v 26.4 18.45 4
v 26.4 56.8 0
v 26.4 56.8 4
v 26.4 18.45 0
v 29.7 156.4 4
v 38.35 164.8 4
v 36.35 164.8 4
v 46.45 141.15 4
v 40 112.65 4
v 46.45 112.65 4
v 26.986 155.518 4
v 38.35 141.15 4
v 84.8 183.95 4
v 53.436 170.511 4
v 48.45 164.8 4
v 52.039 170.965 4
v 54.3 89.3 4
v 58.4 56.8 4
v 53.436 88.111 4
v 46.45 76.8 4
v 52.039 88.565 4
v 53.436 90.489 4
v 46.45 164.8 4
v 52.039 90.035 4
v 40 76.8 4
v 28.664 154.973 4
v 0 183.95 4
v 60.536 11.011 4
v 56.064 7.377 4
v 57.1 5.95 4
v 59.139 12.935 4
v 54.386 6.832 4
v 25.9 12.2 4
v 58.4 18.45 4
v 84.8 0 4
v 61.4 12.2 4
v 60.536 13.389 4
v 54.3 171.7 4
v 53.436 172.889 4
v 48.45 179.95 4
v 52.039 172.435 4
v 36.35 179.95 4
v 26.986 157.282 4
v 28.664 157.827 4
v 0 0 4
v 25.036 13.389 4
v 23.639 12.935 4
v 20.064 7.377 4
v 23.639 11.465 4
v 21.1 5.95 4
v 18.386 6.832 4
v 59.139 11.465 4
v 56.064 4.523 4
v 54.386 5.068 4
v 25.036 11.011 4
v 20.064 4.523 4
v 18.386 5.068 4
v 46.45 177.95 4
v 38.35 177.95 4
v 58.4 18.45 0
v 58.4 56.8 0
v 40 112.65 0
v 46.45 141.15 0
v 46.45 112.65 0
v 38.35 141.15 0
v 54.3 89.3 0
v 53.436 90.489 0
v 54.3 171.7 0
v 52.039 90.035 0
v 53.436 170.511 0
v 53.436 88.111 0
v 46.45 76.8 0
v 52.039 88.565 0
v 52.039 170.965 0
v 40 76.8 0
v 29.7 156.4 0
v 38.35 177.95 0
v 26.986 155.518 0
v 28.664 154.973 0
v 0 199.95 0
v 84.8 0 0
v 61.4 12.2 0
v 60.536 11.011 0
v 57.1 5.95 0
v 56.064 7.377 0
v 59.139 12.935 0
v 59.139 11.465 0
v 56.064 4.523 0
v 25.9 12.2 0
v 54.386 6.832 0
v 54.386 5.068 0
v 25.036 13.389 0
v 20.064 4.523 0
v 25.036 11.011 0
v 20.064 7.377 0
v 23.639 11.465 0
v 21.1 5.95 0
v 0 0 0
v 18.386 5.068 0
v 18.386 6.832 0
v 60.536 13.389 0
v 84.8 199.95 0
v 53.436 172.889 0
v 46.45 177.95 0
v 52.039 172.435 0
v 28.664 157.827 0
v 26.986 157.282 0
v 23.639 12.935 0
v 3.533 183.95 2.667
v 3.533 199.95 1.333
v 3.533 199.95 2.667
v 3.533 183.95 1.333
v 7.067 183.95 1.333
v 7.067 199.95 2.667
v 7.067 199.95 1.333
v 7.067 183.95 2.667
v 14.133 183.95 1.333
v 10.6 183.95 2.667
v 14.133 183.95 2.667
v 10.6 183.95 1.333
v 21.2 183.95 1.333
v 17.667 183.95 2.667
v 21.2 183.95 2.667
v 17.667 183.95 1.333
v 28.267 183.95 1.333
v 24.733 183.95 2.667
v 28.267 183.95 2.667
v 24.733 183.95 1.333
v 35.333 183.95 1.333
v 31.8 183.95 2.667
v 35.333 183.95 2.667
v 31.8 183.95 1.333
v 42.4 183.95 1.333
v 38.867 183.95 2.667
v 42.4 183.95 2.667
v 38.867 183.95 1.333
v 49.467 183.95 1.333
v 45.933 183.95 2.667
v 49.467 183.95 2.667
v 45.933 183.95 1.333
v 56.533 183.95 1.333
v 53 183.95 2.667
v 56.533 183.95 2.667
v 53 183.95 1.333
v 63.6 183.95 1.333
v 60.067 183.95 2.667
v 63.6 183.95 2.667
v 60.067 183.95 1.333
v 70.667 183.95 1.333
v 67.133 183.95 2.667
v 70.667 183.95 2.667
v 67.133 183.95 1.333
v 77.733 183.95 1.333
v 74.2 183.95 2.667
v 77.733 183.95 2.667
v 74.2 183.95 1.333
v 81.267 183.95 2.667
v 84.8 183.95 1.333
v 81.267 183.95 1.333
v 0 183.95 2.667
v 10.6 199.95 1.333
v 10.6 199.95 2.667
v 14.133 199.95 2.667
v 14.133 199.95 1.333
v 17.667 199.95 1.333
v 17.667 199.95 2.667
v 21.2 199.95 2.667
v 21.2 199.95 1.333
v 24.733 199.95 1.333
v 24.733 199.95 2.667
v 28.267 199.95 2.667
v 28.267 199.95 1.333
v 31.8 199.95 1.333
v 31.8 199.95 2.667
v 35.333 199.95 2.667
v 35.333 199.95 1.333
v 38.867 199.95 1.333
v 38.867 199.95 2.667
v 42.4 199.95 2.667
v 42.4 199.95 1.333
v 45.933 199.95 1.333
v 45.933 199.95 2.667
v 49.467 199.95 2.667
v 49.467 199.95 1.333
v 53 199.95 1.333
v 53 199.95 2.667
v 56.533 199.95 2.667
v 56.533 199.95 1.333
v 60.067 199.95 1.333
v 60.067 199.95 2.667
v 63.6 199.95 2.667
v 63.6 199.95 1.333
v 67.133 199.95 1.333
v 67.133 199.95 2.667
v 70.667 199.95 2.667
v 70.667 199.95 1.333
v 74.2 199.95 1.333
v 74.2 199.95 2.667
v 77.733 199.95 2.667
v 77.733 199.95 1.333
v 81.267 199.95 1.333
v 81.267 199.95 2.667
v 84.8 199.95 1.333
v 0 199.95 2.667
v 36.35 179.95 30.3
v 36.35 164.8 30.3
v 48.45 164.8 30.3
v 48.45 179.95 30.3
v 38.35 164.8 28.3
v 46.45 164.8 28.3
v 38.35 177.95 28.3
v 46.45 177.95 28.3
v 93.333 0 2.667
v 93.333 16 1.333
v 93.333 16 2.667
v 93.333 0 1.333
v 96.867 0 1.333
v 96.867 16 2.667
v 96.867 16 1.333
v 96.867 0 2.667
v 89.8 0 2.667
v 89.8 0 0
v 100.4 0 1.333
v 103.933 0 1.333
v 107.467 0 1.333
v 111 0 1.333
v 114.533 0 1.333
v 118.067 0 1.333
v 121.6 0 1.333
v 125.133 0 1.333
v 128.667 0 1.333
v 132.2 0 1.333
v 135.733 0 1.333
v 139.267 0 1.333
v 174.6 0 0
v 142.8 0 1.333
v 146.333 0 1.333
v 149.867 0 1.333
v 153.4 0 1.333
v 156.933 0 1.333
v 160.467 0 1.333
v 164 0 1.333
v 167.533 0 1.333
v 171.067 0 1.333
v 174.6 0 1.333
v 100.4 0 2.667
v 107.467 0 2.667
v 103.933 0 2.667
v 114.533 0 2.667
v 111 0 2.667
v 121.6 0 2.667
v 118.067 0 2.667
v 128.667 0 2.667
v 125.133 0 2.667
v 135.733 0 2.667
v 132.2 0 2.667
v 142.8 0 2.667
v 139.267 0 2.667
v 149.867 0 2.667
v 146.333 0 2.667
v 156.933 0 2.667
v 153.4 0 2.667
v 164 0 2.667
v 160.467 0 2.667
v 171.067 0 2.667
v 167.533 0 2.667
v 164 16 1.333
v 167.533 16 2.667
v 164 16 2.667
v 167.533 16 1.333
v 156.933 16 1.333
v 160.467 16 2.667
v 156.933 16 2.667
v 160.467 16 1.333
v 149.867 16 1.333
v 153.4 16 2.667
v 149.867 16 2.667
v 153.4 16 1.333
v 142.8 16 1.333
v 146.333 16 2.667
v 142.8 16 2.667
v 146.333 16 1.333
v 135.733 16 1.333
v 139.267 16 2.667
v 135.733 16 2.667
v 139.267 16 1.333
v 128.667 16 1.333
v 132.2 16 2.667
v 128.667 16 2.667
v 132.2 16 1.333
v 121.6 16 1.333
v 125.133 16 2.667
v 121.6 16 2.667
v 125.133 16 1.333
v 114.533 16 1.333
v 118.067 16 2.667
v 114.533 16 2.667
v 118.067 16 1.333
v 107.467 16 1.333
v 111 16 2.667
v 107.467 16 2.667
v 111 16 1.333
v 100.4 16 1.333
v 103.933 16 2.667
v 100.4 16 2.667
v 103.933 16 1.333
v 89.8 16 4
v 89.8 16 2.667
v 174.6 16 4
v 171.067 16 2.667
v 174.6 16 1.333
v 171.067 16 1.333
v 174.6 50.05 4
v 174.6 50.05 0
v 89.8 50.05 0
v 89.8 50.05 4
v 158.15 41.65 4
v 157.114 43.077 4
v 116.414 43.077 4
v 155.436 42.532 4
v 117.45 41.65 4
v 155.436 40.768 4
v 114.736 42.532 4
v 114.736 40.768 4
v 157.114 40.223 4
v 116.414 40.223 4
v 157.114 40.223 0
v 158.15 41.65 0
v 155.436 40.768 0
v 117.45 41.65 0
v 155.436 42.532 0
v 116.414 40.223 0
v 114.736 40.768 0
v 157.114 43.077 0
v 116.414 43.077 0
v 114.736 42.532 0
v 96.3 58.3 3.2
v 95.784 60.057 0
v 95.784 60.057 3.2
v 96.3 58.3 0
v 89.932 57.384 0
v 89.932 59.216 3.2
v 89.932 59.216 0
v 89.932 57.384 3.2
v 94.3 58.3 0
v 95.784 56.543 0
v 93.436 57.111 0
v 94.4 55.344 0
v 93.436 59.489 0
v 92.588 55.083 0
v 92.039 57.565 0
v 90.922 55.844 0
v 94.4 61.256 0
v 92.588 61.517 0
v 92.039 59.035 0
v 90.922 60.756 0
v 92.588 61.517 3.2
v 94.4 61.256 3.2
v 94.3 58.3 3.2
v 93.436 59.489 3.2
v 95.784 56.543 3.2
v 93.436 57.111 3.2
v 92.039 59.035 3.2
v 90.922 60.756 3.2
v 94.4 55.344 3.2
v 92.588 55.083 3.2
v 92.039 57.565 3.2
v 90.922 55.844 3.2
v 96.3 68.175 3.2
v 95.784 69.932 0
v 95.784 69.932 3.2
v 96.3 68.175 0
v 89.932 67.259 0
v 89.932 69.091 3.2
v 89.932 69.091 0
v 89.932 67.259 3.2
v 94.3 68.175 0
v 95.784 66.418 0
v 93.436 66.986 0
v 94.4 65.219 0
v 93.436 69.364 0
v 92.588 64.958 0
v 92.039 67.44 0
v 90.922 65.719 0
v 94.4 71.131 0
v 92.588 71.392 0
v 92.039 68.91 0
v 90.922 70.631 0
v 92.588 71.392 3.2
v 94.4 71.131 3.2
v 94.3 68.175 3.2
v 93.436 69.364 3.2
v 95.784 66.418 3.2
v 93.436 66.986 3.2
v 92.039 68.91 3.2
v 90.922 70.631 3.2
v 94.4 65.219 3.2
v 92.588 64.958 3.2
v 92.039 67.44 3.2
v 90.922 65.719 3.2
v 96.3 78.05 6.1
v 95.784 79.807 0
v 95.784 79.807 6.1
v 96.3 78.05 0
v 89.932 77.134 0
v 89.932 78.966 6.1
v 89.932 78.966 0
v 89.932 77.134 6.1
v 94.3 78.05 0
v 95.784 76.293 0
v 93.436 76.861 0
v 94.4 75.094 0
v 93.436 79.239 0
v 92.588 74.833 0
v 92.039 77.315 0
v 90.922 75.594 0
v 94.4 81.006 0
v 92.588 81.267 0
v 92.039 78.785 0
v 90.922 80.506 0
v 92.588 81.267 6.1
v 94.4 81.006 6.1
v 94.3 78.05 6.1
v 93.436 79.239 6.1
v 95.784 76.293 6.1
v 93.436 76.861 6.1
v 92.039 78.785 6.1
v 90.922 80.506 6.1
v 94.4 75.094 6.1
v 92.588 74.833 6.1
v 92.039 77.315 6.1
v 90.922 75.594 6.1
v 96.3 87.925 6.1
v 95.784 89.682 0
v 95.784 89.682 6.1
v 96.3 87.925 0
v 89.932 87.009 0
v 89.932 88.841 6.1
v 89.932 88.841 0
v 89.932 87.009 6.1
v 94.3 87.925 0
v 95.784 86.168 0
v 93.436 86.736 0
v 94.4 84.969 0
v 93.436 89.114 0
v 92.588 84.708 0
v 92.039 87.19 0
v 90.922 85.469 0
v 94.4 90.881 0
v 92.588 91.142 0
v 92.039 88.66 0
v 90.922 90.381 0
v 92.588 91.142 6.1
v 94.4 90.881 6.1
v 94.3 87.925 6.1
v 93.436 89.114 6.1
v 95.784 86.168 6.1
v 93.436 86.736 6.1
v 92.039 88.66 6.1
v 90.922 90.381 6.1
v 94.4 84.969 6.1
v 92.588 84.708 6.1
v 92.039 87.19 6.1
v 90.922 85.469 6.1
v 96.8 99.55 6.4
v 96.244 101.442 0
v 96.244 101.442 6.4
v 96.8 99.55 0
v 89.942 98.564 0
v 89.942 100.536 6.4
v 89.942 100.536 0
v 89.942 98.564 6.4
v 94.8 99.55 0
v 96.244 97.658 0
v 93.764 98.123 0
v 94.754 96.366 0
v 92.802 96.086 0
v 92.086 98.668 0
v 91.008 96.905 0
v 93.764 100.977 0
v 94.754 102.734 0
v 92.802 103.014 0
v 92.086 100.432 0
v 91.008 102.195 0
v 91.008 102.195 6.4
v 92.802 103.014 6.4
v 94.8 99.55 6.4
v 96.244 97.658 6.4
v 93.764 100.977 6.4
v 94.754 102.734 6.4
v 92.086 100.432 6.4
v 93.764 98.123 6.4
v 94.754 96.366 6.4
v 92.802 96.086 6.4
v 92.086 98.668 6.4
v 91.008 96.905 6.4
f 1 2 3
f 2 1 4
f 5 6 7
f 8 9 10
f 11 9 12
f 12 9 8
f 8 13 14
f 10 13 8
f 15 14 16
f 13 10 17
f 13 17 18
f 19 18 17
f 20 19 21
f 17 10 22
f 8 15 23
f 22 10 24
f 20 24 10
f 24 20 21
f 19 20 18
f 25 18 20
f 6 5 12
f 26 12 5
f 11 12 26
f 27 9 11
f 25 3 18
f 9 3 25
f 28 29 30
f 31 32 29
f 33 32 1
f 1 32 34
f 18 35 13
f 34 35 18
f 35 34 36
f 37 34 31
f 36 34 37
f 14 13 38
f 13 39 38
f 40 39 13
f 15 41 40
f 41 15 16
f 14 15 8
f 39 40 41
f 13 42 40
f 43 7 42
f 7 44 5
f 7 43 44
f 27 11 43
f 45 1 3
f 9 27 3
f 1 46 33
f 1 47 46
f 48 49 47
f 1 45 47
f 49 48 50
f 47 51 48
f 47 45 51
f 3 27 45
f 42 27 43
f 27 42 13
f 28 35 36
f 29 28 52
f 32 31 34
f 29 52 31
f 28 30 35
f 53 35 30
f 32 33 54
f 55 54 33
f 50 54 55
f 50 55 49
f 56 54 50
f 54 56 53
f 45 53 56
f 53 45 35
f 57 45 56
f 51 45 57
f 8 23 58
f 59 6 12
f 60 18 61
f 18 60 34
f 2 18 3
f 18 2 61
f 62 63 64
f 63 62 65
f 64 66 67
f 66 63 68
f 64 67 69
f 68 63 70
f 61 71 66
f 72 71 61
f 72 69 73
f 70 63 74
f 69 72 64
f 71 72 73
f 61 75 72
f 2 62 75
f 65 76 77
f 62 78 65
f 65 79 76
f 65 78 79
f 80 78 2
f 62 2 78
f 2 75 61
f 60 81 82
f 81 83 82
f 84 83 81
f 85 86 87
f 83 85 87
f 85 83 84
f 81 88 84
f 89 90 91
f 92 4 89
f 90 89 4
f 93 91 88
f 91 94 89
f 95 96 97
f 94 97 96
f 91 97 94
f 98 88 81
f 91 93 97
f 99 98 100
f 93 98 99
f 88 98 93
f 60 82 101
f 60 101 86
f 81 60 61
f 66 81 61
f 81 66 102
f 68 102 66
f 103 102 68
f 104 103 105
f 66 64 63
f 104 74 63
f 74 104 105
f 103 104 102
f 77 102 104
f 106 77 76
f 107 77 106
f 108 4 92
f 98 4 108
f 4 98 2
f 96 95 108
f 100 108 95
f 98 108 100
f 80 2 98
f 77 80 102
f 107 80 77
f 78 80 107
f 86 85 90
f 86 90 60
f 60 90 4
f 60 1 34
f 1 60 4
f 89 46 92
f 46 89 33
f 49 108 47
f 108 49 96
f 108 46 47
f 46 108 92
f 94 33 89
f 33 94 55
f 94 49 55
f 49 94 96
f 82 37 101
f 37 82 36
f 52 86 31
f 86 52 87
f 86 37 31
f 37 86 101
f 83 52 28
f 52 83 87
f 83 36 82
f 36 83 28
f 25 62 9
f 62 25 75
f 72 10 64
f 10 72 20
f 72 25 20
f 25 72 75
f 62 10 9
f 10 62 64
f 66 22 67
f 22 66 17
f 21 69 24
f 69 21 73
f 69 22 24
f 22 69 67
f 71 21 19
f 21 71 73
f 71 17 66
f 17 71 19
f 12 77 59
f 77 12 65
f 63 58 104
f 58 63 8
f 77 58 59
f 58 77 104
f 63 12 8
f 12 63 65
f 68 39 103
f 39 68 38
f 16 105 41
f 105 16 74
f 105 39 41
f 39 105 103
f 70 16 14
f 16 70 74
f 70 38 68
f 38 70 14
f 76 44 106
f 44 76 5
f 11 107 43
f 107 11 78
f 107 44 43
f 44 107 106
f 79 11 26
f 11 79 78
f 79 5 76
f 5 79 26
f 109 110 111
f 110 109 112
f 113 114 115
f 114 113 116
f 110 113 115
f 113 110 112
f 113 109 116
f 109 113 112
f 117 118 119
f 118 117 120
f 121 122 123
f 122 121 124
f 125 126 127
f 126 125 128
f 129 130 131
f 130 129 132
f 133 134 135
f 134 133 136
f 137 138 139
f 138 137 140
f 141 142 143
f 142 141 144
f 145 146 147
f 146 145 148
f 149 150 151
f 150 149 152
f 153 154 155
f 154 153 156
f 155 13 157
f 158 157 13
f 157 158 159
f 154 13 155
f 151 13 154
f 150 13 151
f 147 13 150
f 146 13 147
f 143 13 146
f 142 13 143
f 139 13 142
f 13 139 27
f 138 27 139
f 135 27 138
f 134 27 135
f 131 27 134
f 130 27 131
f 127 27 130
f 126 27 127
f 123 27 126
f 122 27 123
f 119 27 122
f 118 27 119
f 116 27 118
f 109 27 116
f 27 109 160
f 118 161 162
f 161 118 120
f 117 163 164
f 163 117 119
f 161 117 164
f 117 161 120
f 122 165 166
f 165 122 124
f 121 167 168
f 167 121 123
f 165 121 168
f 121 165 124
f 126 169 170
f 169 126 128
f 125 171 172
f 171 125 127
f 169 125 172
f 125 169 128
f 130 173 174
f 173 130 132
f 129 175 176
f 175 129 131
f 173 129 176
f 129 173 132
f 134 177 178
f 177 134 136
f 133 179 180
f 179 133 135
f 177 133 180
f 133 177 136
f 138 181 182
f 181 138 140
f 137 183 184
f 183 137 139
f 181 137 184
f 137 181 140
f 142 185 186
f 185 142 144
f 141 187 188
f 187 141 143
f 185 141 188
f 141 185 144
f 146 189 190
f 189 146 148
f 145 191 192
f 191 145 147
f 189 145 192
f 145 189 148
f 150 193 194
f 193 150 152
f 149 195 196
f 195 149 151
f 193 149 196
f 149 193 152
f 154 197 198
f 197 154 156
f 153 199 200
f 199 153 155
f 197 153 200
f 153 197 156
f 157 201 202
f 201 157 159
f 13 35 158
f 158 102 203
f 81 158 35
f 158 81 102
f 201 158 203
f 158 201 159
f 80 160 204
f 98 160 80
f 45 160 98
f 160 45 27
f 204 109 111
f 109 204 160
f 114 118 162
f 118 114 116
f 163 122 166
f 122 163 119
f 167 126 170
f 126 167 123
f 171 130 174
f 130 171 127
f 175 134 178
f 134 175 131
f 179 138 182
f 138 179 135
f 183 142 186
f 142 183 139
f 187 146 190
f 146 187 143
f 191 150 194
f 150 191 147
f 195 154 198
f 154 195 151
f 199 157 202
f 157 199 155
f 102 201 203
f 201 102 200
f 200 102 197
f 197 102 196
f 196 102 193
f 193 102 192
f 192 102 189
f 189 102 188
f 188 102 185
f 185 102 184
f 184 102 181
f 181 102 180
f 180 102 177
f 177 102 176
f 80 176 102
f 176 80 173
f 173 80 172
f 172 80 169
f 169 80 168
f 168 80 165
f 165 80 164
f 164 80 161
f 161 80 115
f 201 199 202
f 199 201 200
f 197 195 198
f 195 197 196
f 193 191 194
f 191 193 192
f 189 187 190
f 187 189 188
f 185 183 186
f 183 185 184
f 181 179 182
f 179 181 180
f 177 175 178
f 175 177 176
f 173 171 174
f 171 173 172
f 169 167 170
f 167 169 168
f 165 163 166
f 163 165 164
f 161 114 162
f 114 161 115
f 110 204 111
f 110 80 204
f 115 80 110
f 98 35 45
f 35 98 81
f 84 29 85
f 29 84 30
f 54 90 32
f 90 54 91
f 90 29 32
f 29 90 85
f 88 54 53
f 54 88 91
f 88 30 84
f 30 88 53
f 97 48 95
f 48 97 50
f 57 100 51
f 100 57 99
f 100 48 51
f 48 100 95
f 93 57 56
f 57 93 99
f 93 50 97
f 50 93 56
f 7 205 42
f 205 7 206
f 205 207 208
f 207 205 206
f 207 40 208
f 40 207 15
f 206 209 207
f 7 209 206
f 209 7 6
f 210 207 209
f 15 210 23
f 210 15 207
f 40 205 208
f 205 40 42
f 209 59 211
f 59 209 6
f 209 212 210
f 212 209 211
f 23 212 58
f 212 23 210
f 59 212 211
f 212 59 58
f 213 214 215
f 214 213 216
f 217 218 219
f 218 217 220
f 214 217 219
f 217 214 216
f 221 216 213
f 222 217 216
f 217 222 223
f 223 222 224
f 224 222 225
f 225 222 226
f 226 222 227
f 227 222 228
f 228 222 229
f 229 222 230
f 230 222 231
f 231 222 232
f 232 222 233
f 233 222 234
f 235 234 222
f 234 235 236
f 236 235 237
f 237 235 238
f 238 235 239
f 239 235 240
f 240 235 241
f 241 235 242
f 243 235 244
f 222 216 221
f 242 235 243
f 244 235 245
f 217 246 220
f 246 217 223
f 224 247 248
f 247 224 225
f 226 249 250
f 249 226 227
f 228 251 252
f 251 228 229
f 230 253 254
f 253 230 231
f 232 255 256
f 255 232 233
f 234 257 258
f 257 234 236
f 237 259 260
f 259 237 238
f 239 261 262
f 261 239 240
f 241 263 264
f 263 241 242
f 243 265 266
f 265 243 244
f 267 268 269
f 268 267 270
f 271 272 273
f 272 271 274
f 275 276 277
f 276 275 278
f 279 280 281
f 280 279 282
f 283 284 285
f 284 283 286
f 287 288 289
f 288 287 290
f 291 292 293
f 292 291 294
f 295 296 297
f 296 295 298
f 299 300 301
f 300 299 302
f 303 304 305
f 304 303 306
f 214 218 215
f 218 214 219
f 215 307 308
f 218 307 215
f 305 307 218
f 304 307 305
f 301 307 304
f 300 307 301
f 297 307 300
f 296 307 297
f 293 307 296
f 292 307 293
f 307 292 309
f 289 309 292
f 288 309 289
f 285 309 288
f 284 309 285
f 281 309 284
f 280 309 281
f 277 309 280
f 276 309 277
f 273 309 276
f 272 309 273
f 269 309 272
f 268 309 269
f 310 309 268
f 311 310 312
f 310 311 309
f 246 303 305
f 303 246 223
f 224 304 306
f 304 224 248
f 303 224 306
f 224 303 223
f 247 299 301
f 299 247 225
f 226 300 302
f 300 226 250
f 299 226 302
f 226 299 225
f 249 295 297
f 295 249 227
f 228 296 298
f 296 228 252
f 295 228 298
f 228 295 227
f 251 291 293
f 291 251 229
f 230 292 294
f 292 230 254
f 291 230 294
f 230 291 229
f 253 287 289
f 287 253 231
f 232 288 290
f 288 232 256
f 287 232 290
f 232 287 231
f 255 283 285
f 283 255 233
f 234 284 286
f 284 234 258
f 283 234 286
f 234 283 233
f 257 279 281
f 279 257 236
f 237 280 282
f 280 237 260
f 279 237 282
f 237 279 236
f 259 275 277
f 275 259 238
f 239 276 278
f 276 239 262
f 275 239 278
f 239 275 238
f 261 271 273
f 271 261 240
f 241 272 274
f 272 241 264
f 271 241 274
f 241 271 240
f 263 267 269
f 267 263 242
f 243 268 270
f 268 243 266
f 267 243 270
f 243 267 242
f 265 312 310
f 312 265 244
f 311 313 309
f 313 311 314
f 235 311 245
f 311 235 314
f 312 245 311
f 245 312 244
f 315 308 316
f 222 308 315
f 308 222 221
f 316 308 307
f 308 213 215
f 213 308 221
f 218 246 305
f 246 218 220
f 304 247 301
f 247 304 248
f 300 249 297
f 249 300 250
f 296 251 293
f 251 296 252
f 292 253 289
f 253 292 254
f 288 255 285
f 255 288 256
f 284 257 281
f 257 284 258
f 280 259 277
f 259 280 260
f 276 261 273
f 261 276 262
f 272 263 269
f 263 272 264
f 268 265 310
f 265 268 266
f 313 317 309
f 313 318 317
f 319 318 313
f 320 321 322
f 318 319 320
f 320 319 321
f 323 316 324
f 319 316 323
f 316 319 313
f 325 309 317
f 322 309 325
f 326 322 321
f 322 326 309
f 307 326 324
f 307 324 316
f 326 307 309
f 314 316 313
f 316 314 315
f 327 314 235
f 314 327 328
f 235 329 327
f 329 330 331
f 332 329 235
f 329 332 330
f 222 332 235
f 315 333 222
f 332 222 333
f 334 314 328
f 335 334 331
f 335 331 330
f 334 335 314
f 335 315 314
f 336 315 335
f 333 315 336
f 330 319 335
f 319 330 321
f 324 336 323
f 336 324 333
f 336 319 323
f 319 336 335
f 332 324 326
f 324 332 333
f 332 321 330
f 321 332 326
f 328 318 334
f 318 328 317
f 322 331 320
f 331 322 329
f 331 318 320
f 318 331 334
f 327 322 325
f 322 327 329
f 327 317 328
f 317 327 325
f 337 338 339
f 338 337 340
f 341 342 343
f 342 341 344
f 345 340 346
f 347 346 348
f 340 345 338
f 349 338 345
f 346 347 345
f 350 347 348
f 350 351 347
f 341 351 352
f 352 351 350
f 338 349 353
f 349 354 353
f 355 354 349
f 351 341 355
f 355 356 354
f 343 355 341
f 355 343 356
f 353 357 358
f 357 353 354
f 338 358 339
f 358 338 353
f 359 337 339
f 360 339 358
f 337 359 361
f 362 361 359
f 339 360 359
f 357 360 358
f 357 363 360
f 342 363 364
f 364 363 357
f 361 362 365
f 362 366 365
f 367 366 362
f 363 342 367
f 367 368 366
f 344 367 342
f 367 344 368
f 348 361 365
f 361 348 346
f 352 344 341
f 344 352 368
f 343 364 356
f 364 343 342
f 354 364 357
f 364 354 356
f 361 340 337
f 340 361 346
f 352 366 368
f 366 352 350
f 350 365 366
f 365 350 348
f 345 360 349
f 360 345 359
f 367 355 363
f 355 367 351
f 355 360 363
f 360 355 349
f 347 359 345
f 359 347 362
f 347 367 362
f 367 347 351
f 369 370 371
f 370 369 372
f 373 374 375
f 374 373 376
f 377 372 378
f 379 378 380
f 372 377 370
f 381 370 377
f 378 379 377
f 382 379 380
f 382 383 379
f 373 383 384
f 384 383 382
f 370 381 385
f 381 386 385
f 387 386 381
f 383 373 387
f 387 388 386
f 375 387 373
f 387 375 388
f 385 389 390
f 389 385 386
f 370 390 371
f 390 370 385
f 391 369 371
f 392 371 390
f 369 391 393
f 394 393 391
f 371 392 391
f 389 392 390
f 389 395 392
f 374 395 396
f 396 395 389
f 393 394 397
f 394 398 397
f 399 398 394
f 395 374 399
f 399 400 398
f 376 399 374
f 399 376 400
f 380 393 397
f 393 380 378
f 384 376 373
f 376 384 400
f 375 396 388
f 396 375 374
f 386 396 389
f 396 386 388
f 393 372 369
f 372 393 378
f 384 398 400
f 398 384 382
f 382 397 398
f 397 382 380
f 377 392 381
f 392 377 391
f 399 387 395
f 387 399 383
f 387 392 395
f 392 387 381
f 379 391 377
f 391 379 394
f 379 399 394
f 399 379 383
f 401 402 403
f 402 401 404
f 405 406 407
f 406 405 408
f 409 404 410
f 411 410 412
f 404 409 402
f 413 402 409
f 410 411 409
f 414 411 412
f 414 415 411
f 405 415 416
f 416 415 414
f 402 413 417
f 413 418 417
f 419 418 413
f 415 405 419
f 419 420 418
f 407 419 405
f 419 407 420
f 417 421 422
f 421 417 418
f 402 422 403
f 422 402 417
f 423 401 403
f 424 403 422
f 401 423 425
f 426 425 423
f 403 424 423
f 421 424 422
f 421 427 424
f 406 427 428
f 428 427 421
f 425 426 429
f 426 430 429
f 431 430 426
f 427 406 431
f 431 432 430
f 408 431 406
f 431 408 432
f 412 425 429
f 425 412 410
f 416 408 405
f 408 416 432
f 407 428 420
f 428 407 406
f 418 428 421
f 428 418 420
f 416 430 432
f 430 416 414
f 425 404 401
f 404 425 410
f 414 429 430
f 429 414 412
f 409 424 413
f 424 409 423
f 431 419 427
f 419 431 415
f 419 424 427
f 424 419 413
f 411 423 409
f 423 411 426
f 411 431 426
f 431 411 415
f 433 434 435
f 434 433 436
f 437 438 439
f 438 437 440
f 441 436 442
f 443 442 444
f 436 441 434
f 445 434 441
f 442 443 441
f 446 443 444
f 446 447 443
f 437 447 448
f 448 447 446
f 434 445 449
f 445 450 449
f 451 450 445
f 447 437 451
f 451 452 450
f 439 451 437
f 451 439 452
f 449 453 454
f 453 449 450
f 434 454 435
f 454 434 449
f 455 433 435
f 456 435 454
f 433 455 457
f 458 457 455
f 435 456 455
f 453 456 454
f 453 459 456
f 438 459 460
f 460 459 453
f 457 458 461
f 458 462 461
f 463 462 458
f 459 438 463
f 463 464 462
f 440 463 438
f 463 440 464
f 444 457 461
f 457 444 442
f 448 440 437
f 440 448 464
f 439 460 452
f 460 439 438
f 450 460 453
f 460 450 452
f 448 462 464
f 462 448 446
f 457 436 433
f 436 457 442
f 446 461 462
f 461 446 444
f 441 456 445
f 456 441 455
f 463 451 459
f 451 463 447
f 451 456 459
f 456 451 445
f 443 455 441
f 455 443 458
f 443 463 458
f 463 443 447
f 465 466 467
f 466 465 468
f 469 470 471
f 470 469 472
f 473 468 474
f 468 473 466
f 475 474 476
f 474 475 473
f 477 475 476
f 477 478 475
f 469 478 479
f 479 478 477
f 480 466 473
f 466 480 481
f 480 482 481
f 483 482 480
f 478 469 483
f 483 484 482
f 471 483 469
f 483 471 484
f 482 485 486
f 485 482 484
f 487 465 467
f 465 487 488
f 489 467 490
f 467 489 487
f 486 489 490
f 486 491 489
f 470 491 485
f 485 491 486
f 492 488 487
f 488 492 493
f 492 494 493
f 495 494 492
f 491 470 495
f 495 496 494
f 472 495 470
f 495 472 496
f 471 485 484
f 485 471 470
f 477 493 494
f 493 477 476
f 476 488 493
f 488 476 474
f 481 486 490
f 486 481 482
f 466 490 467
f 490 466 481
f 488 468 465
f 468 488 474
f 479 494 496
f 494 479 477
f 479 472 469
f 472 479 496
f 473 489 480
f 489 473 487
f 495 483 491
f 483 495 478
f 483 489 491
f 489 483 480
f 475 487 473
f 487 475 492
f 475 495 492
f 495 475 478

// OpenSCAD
spaceBetweenPrintedParts=5;

plateWidth=84.8;
plateHeight=250;
plateThickness=4;

screwTypeOneDiameter=3;
screwTypeOneRadius=screwTypeOneDiameter / 2;
screwTypeTwoDiameter=2.5;
screwTypeTwoRadius=screwTypeTwoDiameter / 2;

// Mounts for parts (e.g screen and coin acceptor):
partMountWallThickness=2;
screenMountHeight=3.2;
coinAcceptorLeftMountHeight=6.1;
coinAcceptorRightMountHeight=6.4;

screwTopSpaceBetween=33;
screwTopLeftPosX=24.7 + screwTypeOneRadius;
screwTopLeftPosY=4.45 + screwTypeOneRadius;
screwTopRightPosX=screwTopLeftPosX + screwTypeOneRadius + screwTopSpaceBetween + screwTypeOneRadius;
screwTopRightPosY=screwTopLeftPosY;

screenMarginTop=10;
screenWidth=32;
screenHeight=38.35;
screenPosX=(plateWidth - screenWidth) / 2;
screenPosY=screwTopLeftPosY + screwTypeTwoDiameter + screenMarginTop;
screenScrewTopLeftPosX=(0.5 + screwTypeTwoRadius) * -1;
screenScrewTopLeftPosY=(5 + screwTypeTwoRadius) * -1;
screenScrewTopRightPosX=screenWidth + 0.5 + screwTypeTwoRadius;
screenScrewTopRightPosY=screenScrewTopLeftPosY;
screenMarginBottom=16;

coinAcceptorMarginTop=4;
coinInsertOutputGap=28.5;
coinOutputWidth=8.1;
coinOutputHeight=36.8;
coinOutputPosX=(plateWidth - coinOutputWidth) / 2;

coinInsertWidth=6.45;
coinInsertHeight=35.85;
coinInsertPosX=coinOutputPosX;
coinInsertPosY=screenPosY + screenHeight + screenMarginBottom + coinAcceptorMarginTop;
coinOutputPosY=coinInsertPosY + coinInsertHeight + coinInsertOutputGap;
coinOutputMarginBottom=22;

toothWidth=plateWidth / floor(plateWidth / 3.5);
toothHeight=16;
topPlateHeight=coinOutputHeight + coinOutputPosY + coinOutputMarginBottom;
topPlatePosX=0;
topPlatePosY=0;
topPlateTeethPosX=topPlatePosX;
topPlateTeethPosY=(topPlatePosY + topPlateHeight) - toothHeight;

bottomPlateHeight=plateHeight - topPlateHeight;
bottomPlatePosX=topPlatePosX + plateWidth + spaceBetweenPrintedParts;
bottomPlatePosY=topPlatePosY;
bottomPlateTeethPosX=0;
bottomPlateTeethPosY=0;

screwBottomSpaceBetween=36.2;
screwBottomLeftPosX=24.65 + screwTypeOneRadius;
screwBottomLeftPosY=bottomPlateHeight - (screwTypeOneDiameter + screwTypeOneRadius + 3.9);
screwBottomRightPosX=screwBottomLeftPosX + screwTypeOneDiameter + screwBottomSpaceBetween + screwTypeOneRadius;
screwBottomRightPosY=screwBottomLeftPosY;

coinAcceptorScrewTopPosX=(7.85 + screwTypeTwoRadius) * -1;
coinAcceptorScrewTopPosY=11.25 + screwTypeTwoRadius;
coinAcceptorScrewBottomPosX=(7.85 + screwTypeTwoRadius) * -1;
coinAcceptorScrewBottomPosY=coinOutputHeight - (5 + screwTypeTwoRadius);
coinAcceptorScrewRightPosX=(14 + screwTypeTwoRadius);
coinAcceptorScrewRightPosY=14 + screwTypeTwoRadius;

maxExpectedCoinDiameter=26.3;
maxExpectedCoinRadius=maxExpectedCoinDiameter / 2;
coinCatchWallThickness=2;
coinCatchWidth=coinOutputWidth + (coinCatchWallThickness * 2);
coinCatchHeight=maxExpectedCoinRadius + coinCatchWallThickness;
coinCatchDepth=maxExpectedCoinDiameter + coinCatchWallThickness;
coinCatchPosX=coinOutputPosX - coinCatchWallThickness;
coinCatchPosY=(coinOutputPosY + coinOutputHeight + coinCatchWallThickness) - coinCatchHeight;
coinCatchPosZ=plateThickness + (coinCatchWallThickness * -1);

// plate (top)
translate([topPlatePosX, topPlatePosY]) {
    union() {
        difference() {
            // plate
            cube([
                plateWidth,
                topPlateHeight,
                plateThickness
            ]);
            // screw (top-left)
            translate([
                // Invert x-coordinate:
                plateWidth - (screwTopLeftPosX + screwTypeOneDiameter),
                screwTopLeftPosY
            ]) {
                cylinder(
                    h=plateThickness,
                    r=screwTypeOneRadius
                );
            }
            // screw (top-right)
            translate([
                plateWidth - (screwTopRightPosX + screwTypeOneDiameter),
                screwTopRightPosY
            ]) {
                cylinder(
                    h=plateThickness,
                    r=screwTypeOneRadius
                );
            }
            // screen
            translate([screenPosX, screenPosY]) {
                cube([
                    screenWidth,
                    screenHeight,
                    plateThickness
                ]);
                // screen screw (top-left)
                translate([
                    screenScrewTopLeftPosX,
                    screenScrewTopLeftPosY
                ]) {
                    cylinder(
                        h=plateThickness,
                        r=screwTypeTwoRadius
                    );
                }
                // screen screw (top-right)
                translate([
                    screenScrewTopRightPosX,
                    screenScrewTopRightPosY
                ]) {
                    cylinder(
                        h=plateThickness,
                        r=screwTypeTwoRadius
                    );
                }
            }
            // coin insert
            translate([
                // Invert x-coordinate:
                plateWidth - (coinInsertPosX + coinInsertWidth),
                coinInsertPosY
            ]) {
                cube([
                    coinInsertWidth,
                    coinInsertHeight,
                    plateThickness
                ]);
                // screw (top)
                translate([
                    // Invert x-coordinate:
                    coinInsertWidth - (coinAcceptorScrewTopPosX + screwTypeTwoDiameter),
                    coinAcceptorScrewTopPosY
                ]) {
                    cylinder(
                        h=plateThickness,
                        r=screwTypeTwoRadius
                    );
                }
            }
            // coin output
            translate([coinOutputPosX, coinOutputPosY]) {
                cube([
                    coinOutputWidth,
                    coinOutputHeight,
                    plateThickness
                ]);
                // screw (bottom)
                translate([
                    // Invert x-coordinate:
                    coinOutputWidth - (coinAcceptorScrewBottomPosX + screwTypeTwoDiameter),
                    coinAcceptorScrewBottomPosY
                ]) {
                    cylinder(
                        h=plateThickness,
                        r=screwTypeTwoRadius
                    );
                }
                // screw (right)
                translate([
                    // Invert x-coordinate:
                    coinOutputWidth - (coinAcceptorScrewRightPosX + screwTypeOneDiameter),
                    coinAcceptorScrewRightPosY
                ]) {
                    cylinder(
                        h=plateThickness,
                        r=screwTypeOneRadius
                    );
                }
            }
            // teeth
            translate([
                topPlateTeethPosX,
                topPlateTeethPosY,
                plateThickness * (2/3)
            ]) {
                cube([
                    plateWidth,
                    toothHeight,
                    (plateThickness / 3) + 0.1
                ]);
                translate([0, 0, plateThickness / -3]) {
                    for (offsetX=[toothWidth : toothWidth * 2 : plateWidth]) {
                        translate([offsetX, 0]) {
                            cube([
                                toothWidth,
                                toothHeight,
                                (plateThickness / 3) + 0.1
                            ]);
                        }
                    }
                }
            }
        }
        // coin output catch
        difference() {
            translate([
                coinCatchPosX,
                coinCatchPosY,
                coinCatchPosZ
            ]) {
                cube([
                    coinCatchWidth,
                    coinCatchHeight,
                    coinCatchDepth
                ]);
            }
            translate([
                coinCatchPosX + coinCatchWallThickness,
                coinCatchPosY - coinCatchWallThickness,
                coinCatchPosZ - coinCatchWallThickness
            ]) {
                cube([
                    coinCatchWidth - (coinCatchWallThickness * 2),
                    coinCatchHeight,
                    coinCatchDepth
                ]);
            }
        }
    }
}

// plate (bottom)
translate([bottomPlatePosX, bottomPlatePosY]) {
    difference() {
        // plate
        cube([
            plateWidth,
            bottomPlateHeight,
            plateThickness
        ]);
        // screw (bottom-left)
        translate([
            screwBottomLeftPosX,
            screwBottomLeftPosY
        ]) {
            cylinder(
                h=plateThickness,
                r=screwTypeOneRadius
            );
        }
        // screw (bottom-right)
        translate([
            screwBottomRightPosX,
            screwBottomRightPosY
        ]) {
            cylinder(
                h=plateThickness,
                r=screwTypeOneRadius
            );
        }
        // teeth
        translate([
            bottomPlateTeethPosX,
            bottomPlateTeethPosY,
            plateThickness * (2/3)
        ]) {
            cube([
                plateWidth,
                toothHeight,
                (plateThickness / 3) + 0.1
            ]);
            translate([0, 0, plateThickness / -3]) {
                for (offsetX=[toothWidth : toothWidth * 2 : plateWidth]) {
                    translate([offsetX, 0]) {
                        cube([
                            toothWidth,
                            toothHeight,
                            (plateThickness / 3) + 0.1
                        ]);
                    }
                }
            }
        }
    }
}

// part mounts
translate([
    topPlatePosX + plateWidth + spaceBetweenPrintedParts,
    bottomPlatePosY + bottomPlateHeight + spaceBetweenPrintedParts
]) {
    mounts=[
        // screen mount #1:
        [ screenMountHeight, screwTypeTwoRadius + partMountWallThickness ],
        // screen mount #2:
        [ screenMountHeight, screwTypeTwoRadius + partMountWallThickness ],
        // coin acceptor left mount #1:
        [ coinAcceptorLeftMountHeight, screwTypeTwoRadius + partMountWallThickness ],
        // coin acceptor left mount #2:
        [ coinAcceptorLeftMountHeight, screwTypeTwoRadius + partMountWallThickness ],
        // coin acceptor right mount:
        [ coinAcceptorRightMountHeight, screwTypeOneRadius + partMountWallThickness ]
    ];
    for (index=[0 : 1 : len(mounts) - 1]) {
        mountHeight=mounts[index][0];
        mountRadius=mounts[index][1];
        translate([
            mountRadius,
            (spaceBetweenPrintedParts * index) + mountRadius + (mountRadius * 1.5 * index)
        ]) {
            difference() {
                cylinder(
                    h=mountHeight,
                    r=mountRadius
                );
                // screw hole:
                cylinder(
                    h=mountHeight,
                    r=mountRadius-partMountWallThickness
                );
            }
        }
    }
}
